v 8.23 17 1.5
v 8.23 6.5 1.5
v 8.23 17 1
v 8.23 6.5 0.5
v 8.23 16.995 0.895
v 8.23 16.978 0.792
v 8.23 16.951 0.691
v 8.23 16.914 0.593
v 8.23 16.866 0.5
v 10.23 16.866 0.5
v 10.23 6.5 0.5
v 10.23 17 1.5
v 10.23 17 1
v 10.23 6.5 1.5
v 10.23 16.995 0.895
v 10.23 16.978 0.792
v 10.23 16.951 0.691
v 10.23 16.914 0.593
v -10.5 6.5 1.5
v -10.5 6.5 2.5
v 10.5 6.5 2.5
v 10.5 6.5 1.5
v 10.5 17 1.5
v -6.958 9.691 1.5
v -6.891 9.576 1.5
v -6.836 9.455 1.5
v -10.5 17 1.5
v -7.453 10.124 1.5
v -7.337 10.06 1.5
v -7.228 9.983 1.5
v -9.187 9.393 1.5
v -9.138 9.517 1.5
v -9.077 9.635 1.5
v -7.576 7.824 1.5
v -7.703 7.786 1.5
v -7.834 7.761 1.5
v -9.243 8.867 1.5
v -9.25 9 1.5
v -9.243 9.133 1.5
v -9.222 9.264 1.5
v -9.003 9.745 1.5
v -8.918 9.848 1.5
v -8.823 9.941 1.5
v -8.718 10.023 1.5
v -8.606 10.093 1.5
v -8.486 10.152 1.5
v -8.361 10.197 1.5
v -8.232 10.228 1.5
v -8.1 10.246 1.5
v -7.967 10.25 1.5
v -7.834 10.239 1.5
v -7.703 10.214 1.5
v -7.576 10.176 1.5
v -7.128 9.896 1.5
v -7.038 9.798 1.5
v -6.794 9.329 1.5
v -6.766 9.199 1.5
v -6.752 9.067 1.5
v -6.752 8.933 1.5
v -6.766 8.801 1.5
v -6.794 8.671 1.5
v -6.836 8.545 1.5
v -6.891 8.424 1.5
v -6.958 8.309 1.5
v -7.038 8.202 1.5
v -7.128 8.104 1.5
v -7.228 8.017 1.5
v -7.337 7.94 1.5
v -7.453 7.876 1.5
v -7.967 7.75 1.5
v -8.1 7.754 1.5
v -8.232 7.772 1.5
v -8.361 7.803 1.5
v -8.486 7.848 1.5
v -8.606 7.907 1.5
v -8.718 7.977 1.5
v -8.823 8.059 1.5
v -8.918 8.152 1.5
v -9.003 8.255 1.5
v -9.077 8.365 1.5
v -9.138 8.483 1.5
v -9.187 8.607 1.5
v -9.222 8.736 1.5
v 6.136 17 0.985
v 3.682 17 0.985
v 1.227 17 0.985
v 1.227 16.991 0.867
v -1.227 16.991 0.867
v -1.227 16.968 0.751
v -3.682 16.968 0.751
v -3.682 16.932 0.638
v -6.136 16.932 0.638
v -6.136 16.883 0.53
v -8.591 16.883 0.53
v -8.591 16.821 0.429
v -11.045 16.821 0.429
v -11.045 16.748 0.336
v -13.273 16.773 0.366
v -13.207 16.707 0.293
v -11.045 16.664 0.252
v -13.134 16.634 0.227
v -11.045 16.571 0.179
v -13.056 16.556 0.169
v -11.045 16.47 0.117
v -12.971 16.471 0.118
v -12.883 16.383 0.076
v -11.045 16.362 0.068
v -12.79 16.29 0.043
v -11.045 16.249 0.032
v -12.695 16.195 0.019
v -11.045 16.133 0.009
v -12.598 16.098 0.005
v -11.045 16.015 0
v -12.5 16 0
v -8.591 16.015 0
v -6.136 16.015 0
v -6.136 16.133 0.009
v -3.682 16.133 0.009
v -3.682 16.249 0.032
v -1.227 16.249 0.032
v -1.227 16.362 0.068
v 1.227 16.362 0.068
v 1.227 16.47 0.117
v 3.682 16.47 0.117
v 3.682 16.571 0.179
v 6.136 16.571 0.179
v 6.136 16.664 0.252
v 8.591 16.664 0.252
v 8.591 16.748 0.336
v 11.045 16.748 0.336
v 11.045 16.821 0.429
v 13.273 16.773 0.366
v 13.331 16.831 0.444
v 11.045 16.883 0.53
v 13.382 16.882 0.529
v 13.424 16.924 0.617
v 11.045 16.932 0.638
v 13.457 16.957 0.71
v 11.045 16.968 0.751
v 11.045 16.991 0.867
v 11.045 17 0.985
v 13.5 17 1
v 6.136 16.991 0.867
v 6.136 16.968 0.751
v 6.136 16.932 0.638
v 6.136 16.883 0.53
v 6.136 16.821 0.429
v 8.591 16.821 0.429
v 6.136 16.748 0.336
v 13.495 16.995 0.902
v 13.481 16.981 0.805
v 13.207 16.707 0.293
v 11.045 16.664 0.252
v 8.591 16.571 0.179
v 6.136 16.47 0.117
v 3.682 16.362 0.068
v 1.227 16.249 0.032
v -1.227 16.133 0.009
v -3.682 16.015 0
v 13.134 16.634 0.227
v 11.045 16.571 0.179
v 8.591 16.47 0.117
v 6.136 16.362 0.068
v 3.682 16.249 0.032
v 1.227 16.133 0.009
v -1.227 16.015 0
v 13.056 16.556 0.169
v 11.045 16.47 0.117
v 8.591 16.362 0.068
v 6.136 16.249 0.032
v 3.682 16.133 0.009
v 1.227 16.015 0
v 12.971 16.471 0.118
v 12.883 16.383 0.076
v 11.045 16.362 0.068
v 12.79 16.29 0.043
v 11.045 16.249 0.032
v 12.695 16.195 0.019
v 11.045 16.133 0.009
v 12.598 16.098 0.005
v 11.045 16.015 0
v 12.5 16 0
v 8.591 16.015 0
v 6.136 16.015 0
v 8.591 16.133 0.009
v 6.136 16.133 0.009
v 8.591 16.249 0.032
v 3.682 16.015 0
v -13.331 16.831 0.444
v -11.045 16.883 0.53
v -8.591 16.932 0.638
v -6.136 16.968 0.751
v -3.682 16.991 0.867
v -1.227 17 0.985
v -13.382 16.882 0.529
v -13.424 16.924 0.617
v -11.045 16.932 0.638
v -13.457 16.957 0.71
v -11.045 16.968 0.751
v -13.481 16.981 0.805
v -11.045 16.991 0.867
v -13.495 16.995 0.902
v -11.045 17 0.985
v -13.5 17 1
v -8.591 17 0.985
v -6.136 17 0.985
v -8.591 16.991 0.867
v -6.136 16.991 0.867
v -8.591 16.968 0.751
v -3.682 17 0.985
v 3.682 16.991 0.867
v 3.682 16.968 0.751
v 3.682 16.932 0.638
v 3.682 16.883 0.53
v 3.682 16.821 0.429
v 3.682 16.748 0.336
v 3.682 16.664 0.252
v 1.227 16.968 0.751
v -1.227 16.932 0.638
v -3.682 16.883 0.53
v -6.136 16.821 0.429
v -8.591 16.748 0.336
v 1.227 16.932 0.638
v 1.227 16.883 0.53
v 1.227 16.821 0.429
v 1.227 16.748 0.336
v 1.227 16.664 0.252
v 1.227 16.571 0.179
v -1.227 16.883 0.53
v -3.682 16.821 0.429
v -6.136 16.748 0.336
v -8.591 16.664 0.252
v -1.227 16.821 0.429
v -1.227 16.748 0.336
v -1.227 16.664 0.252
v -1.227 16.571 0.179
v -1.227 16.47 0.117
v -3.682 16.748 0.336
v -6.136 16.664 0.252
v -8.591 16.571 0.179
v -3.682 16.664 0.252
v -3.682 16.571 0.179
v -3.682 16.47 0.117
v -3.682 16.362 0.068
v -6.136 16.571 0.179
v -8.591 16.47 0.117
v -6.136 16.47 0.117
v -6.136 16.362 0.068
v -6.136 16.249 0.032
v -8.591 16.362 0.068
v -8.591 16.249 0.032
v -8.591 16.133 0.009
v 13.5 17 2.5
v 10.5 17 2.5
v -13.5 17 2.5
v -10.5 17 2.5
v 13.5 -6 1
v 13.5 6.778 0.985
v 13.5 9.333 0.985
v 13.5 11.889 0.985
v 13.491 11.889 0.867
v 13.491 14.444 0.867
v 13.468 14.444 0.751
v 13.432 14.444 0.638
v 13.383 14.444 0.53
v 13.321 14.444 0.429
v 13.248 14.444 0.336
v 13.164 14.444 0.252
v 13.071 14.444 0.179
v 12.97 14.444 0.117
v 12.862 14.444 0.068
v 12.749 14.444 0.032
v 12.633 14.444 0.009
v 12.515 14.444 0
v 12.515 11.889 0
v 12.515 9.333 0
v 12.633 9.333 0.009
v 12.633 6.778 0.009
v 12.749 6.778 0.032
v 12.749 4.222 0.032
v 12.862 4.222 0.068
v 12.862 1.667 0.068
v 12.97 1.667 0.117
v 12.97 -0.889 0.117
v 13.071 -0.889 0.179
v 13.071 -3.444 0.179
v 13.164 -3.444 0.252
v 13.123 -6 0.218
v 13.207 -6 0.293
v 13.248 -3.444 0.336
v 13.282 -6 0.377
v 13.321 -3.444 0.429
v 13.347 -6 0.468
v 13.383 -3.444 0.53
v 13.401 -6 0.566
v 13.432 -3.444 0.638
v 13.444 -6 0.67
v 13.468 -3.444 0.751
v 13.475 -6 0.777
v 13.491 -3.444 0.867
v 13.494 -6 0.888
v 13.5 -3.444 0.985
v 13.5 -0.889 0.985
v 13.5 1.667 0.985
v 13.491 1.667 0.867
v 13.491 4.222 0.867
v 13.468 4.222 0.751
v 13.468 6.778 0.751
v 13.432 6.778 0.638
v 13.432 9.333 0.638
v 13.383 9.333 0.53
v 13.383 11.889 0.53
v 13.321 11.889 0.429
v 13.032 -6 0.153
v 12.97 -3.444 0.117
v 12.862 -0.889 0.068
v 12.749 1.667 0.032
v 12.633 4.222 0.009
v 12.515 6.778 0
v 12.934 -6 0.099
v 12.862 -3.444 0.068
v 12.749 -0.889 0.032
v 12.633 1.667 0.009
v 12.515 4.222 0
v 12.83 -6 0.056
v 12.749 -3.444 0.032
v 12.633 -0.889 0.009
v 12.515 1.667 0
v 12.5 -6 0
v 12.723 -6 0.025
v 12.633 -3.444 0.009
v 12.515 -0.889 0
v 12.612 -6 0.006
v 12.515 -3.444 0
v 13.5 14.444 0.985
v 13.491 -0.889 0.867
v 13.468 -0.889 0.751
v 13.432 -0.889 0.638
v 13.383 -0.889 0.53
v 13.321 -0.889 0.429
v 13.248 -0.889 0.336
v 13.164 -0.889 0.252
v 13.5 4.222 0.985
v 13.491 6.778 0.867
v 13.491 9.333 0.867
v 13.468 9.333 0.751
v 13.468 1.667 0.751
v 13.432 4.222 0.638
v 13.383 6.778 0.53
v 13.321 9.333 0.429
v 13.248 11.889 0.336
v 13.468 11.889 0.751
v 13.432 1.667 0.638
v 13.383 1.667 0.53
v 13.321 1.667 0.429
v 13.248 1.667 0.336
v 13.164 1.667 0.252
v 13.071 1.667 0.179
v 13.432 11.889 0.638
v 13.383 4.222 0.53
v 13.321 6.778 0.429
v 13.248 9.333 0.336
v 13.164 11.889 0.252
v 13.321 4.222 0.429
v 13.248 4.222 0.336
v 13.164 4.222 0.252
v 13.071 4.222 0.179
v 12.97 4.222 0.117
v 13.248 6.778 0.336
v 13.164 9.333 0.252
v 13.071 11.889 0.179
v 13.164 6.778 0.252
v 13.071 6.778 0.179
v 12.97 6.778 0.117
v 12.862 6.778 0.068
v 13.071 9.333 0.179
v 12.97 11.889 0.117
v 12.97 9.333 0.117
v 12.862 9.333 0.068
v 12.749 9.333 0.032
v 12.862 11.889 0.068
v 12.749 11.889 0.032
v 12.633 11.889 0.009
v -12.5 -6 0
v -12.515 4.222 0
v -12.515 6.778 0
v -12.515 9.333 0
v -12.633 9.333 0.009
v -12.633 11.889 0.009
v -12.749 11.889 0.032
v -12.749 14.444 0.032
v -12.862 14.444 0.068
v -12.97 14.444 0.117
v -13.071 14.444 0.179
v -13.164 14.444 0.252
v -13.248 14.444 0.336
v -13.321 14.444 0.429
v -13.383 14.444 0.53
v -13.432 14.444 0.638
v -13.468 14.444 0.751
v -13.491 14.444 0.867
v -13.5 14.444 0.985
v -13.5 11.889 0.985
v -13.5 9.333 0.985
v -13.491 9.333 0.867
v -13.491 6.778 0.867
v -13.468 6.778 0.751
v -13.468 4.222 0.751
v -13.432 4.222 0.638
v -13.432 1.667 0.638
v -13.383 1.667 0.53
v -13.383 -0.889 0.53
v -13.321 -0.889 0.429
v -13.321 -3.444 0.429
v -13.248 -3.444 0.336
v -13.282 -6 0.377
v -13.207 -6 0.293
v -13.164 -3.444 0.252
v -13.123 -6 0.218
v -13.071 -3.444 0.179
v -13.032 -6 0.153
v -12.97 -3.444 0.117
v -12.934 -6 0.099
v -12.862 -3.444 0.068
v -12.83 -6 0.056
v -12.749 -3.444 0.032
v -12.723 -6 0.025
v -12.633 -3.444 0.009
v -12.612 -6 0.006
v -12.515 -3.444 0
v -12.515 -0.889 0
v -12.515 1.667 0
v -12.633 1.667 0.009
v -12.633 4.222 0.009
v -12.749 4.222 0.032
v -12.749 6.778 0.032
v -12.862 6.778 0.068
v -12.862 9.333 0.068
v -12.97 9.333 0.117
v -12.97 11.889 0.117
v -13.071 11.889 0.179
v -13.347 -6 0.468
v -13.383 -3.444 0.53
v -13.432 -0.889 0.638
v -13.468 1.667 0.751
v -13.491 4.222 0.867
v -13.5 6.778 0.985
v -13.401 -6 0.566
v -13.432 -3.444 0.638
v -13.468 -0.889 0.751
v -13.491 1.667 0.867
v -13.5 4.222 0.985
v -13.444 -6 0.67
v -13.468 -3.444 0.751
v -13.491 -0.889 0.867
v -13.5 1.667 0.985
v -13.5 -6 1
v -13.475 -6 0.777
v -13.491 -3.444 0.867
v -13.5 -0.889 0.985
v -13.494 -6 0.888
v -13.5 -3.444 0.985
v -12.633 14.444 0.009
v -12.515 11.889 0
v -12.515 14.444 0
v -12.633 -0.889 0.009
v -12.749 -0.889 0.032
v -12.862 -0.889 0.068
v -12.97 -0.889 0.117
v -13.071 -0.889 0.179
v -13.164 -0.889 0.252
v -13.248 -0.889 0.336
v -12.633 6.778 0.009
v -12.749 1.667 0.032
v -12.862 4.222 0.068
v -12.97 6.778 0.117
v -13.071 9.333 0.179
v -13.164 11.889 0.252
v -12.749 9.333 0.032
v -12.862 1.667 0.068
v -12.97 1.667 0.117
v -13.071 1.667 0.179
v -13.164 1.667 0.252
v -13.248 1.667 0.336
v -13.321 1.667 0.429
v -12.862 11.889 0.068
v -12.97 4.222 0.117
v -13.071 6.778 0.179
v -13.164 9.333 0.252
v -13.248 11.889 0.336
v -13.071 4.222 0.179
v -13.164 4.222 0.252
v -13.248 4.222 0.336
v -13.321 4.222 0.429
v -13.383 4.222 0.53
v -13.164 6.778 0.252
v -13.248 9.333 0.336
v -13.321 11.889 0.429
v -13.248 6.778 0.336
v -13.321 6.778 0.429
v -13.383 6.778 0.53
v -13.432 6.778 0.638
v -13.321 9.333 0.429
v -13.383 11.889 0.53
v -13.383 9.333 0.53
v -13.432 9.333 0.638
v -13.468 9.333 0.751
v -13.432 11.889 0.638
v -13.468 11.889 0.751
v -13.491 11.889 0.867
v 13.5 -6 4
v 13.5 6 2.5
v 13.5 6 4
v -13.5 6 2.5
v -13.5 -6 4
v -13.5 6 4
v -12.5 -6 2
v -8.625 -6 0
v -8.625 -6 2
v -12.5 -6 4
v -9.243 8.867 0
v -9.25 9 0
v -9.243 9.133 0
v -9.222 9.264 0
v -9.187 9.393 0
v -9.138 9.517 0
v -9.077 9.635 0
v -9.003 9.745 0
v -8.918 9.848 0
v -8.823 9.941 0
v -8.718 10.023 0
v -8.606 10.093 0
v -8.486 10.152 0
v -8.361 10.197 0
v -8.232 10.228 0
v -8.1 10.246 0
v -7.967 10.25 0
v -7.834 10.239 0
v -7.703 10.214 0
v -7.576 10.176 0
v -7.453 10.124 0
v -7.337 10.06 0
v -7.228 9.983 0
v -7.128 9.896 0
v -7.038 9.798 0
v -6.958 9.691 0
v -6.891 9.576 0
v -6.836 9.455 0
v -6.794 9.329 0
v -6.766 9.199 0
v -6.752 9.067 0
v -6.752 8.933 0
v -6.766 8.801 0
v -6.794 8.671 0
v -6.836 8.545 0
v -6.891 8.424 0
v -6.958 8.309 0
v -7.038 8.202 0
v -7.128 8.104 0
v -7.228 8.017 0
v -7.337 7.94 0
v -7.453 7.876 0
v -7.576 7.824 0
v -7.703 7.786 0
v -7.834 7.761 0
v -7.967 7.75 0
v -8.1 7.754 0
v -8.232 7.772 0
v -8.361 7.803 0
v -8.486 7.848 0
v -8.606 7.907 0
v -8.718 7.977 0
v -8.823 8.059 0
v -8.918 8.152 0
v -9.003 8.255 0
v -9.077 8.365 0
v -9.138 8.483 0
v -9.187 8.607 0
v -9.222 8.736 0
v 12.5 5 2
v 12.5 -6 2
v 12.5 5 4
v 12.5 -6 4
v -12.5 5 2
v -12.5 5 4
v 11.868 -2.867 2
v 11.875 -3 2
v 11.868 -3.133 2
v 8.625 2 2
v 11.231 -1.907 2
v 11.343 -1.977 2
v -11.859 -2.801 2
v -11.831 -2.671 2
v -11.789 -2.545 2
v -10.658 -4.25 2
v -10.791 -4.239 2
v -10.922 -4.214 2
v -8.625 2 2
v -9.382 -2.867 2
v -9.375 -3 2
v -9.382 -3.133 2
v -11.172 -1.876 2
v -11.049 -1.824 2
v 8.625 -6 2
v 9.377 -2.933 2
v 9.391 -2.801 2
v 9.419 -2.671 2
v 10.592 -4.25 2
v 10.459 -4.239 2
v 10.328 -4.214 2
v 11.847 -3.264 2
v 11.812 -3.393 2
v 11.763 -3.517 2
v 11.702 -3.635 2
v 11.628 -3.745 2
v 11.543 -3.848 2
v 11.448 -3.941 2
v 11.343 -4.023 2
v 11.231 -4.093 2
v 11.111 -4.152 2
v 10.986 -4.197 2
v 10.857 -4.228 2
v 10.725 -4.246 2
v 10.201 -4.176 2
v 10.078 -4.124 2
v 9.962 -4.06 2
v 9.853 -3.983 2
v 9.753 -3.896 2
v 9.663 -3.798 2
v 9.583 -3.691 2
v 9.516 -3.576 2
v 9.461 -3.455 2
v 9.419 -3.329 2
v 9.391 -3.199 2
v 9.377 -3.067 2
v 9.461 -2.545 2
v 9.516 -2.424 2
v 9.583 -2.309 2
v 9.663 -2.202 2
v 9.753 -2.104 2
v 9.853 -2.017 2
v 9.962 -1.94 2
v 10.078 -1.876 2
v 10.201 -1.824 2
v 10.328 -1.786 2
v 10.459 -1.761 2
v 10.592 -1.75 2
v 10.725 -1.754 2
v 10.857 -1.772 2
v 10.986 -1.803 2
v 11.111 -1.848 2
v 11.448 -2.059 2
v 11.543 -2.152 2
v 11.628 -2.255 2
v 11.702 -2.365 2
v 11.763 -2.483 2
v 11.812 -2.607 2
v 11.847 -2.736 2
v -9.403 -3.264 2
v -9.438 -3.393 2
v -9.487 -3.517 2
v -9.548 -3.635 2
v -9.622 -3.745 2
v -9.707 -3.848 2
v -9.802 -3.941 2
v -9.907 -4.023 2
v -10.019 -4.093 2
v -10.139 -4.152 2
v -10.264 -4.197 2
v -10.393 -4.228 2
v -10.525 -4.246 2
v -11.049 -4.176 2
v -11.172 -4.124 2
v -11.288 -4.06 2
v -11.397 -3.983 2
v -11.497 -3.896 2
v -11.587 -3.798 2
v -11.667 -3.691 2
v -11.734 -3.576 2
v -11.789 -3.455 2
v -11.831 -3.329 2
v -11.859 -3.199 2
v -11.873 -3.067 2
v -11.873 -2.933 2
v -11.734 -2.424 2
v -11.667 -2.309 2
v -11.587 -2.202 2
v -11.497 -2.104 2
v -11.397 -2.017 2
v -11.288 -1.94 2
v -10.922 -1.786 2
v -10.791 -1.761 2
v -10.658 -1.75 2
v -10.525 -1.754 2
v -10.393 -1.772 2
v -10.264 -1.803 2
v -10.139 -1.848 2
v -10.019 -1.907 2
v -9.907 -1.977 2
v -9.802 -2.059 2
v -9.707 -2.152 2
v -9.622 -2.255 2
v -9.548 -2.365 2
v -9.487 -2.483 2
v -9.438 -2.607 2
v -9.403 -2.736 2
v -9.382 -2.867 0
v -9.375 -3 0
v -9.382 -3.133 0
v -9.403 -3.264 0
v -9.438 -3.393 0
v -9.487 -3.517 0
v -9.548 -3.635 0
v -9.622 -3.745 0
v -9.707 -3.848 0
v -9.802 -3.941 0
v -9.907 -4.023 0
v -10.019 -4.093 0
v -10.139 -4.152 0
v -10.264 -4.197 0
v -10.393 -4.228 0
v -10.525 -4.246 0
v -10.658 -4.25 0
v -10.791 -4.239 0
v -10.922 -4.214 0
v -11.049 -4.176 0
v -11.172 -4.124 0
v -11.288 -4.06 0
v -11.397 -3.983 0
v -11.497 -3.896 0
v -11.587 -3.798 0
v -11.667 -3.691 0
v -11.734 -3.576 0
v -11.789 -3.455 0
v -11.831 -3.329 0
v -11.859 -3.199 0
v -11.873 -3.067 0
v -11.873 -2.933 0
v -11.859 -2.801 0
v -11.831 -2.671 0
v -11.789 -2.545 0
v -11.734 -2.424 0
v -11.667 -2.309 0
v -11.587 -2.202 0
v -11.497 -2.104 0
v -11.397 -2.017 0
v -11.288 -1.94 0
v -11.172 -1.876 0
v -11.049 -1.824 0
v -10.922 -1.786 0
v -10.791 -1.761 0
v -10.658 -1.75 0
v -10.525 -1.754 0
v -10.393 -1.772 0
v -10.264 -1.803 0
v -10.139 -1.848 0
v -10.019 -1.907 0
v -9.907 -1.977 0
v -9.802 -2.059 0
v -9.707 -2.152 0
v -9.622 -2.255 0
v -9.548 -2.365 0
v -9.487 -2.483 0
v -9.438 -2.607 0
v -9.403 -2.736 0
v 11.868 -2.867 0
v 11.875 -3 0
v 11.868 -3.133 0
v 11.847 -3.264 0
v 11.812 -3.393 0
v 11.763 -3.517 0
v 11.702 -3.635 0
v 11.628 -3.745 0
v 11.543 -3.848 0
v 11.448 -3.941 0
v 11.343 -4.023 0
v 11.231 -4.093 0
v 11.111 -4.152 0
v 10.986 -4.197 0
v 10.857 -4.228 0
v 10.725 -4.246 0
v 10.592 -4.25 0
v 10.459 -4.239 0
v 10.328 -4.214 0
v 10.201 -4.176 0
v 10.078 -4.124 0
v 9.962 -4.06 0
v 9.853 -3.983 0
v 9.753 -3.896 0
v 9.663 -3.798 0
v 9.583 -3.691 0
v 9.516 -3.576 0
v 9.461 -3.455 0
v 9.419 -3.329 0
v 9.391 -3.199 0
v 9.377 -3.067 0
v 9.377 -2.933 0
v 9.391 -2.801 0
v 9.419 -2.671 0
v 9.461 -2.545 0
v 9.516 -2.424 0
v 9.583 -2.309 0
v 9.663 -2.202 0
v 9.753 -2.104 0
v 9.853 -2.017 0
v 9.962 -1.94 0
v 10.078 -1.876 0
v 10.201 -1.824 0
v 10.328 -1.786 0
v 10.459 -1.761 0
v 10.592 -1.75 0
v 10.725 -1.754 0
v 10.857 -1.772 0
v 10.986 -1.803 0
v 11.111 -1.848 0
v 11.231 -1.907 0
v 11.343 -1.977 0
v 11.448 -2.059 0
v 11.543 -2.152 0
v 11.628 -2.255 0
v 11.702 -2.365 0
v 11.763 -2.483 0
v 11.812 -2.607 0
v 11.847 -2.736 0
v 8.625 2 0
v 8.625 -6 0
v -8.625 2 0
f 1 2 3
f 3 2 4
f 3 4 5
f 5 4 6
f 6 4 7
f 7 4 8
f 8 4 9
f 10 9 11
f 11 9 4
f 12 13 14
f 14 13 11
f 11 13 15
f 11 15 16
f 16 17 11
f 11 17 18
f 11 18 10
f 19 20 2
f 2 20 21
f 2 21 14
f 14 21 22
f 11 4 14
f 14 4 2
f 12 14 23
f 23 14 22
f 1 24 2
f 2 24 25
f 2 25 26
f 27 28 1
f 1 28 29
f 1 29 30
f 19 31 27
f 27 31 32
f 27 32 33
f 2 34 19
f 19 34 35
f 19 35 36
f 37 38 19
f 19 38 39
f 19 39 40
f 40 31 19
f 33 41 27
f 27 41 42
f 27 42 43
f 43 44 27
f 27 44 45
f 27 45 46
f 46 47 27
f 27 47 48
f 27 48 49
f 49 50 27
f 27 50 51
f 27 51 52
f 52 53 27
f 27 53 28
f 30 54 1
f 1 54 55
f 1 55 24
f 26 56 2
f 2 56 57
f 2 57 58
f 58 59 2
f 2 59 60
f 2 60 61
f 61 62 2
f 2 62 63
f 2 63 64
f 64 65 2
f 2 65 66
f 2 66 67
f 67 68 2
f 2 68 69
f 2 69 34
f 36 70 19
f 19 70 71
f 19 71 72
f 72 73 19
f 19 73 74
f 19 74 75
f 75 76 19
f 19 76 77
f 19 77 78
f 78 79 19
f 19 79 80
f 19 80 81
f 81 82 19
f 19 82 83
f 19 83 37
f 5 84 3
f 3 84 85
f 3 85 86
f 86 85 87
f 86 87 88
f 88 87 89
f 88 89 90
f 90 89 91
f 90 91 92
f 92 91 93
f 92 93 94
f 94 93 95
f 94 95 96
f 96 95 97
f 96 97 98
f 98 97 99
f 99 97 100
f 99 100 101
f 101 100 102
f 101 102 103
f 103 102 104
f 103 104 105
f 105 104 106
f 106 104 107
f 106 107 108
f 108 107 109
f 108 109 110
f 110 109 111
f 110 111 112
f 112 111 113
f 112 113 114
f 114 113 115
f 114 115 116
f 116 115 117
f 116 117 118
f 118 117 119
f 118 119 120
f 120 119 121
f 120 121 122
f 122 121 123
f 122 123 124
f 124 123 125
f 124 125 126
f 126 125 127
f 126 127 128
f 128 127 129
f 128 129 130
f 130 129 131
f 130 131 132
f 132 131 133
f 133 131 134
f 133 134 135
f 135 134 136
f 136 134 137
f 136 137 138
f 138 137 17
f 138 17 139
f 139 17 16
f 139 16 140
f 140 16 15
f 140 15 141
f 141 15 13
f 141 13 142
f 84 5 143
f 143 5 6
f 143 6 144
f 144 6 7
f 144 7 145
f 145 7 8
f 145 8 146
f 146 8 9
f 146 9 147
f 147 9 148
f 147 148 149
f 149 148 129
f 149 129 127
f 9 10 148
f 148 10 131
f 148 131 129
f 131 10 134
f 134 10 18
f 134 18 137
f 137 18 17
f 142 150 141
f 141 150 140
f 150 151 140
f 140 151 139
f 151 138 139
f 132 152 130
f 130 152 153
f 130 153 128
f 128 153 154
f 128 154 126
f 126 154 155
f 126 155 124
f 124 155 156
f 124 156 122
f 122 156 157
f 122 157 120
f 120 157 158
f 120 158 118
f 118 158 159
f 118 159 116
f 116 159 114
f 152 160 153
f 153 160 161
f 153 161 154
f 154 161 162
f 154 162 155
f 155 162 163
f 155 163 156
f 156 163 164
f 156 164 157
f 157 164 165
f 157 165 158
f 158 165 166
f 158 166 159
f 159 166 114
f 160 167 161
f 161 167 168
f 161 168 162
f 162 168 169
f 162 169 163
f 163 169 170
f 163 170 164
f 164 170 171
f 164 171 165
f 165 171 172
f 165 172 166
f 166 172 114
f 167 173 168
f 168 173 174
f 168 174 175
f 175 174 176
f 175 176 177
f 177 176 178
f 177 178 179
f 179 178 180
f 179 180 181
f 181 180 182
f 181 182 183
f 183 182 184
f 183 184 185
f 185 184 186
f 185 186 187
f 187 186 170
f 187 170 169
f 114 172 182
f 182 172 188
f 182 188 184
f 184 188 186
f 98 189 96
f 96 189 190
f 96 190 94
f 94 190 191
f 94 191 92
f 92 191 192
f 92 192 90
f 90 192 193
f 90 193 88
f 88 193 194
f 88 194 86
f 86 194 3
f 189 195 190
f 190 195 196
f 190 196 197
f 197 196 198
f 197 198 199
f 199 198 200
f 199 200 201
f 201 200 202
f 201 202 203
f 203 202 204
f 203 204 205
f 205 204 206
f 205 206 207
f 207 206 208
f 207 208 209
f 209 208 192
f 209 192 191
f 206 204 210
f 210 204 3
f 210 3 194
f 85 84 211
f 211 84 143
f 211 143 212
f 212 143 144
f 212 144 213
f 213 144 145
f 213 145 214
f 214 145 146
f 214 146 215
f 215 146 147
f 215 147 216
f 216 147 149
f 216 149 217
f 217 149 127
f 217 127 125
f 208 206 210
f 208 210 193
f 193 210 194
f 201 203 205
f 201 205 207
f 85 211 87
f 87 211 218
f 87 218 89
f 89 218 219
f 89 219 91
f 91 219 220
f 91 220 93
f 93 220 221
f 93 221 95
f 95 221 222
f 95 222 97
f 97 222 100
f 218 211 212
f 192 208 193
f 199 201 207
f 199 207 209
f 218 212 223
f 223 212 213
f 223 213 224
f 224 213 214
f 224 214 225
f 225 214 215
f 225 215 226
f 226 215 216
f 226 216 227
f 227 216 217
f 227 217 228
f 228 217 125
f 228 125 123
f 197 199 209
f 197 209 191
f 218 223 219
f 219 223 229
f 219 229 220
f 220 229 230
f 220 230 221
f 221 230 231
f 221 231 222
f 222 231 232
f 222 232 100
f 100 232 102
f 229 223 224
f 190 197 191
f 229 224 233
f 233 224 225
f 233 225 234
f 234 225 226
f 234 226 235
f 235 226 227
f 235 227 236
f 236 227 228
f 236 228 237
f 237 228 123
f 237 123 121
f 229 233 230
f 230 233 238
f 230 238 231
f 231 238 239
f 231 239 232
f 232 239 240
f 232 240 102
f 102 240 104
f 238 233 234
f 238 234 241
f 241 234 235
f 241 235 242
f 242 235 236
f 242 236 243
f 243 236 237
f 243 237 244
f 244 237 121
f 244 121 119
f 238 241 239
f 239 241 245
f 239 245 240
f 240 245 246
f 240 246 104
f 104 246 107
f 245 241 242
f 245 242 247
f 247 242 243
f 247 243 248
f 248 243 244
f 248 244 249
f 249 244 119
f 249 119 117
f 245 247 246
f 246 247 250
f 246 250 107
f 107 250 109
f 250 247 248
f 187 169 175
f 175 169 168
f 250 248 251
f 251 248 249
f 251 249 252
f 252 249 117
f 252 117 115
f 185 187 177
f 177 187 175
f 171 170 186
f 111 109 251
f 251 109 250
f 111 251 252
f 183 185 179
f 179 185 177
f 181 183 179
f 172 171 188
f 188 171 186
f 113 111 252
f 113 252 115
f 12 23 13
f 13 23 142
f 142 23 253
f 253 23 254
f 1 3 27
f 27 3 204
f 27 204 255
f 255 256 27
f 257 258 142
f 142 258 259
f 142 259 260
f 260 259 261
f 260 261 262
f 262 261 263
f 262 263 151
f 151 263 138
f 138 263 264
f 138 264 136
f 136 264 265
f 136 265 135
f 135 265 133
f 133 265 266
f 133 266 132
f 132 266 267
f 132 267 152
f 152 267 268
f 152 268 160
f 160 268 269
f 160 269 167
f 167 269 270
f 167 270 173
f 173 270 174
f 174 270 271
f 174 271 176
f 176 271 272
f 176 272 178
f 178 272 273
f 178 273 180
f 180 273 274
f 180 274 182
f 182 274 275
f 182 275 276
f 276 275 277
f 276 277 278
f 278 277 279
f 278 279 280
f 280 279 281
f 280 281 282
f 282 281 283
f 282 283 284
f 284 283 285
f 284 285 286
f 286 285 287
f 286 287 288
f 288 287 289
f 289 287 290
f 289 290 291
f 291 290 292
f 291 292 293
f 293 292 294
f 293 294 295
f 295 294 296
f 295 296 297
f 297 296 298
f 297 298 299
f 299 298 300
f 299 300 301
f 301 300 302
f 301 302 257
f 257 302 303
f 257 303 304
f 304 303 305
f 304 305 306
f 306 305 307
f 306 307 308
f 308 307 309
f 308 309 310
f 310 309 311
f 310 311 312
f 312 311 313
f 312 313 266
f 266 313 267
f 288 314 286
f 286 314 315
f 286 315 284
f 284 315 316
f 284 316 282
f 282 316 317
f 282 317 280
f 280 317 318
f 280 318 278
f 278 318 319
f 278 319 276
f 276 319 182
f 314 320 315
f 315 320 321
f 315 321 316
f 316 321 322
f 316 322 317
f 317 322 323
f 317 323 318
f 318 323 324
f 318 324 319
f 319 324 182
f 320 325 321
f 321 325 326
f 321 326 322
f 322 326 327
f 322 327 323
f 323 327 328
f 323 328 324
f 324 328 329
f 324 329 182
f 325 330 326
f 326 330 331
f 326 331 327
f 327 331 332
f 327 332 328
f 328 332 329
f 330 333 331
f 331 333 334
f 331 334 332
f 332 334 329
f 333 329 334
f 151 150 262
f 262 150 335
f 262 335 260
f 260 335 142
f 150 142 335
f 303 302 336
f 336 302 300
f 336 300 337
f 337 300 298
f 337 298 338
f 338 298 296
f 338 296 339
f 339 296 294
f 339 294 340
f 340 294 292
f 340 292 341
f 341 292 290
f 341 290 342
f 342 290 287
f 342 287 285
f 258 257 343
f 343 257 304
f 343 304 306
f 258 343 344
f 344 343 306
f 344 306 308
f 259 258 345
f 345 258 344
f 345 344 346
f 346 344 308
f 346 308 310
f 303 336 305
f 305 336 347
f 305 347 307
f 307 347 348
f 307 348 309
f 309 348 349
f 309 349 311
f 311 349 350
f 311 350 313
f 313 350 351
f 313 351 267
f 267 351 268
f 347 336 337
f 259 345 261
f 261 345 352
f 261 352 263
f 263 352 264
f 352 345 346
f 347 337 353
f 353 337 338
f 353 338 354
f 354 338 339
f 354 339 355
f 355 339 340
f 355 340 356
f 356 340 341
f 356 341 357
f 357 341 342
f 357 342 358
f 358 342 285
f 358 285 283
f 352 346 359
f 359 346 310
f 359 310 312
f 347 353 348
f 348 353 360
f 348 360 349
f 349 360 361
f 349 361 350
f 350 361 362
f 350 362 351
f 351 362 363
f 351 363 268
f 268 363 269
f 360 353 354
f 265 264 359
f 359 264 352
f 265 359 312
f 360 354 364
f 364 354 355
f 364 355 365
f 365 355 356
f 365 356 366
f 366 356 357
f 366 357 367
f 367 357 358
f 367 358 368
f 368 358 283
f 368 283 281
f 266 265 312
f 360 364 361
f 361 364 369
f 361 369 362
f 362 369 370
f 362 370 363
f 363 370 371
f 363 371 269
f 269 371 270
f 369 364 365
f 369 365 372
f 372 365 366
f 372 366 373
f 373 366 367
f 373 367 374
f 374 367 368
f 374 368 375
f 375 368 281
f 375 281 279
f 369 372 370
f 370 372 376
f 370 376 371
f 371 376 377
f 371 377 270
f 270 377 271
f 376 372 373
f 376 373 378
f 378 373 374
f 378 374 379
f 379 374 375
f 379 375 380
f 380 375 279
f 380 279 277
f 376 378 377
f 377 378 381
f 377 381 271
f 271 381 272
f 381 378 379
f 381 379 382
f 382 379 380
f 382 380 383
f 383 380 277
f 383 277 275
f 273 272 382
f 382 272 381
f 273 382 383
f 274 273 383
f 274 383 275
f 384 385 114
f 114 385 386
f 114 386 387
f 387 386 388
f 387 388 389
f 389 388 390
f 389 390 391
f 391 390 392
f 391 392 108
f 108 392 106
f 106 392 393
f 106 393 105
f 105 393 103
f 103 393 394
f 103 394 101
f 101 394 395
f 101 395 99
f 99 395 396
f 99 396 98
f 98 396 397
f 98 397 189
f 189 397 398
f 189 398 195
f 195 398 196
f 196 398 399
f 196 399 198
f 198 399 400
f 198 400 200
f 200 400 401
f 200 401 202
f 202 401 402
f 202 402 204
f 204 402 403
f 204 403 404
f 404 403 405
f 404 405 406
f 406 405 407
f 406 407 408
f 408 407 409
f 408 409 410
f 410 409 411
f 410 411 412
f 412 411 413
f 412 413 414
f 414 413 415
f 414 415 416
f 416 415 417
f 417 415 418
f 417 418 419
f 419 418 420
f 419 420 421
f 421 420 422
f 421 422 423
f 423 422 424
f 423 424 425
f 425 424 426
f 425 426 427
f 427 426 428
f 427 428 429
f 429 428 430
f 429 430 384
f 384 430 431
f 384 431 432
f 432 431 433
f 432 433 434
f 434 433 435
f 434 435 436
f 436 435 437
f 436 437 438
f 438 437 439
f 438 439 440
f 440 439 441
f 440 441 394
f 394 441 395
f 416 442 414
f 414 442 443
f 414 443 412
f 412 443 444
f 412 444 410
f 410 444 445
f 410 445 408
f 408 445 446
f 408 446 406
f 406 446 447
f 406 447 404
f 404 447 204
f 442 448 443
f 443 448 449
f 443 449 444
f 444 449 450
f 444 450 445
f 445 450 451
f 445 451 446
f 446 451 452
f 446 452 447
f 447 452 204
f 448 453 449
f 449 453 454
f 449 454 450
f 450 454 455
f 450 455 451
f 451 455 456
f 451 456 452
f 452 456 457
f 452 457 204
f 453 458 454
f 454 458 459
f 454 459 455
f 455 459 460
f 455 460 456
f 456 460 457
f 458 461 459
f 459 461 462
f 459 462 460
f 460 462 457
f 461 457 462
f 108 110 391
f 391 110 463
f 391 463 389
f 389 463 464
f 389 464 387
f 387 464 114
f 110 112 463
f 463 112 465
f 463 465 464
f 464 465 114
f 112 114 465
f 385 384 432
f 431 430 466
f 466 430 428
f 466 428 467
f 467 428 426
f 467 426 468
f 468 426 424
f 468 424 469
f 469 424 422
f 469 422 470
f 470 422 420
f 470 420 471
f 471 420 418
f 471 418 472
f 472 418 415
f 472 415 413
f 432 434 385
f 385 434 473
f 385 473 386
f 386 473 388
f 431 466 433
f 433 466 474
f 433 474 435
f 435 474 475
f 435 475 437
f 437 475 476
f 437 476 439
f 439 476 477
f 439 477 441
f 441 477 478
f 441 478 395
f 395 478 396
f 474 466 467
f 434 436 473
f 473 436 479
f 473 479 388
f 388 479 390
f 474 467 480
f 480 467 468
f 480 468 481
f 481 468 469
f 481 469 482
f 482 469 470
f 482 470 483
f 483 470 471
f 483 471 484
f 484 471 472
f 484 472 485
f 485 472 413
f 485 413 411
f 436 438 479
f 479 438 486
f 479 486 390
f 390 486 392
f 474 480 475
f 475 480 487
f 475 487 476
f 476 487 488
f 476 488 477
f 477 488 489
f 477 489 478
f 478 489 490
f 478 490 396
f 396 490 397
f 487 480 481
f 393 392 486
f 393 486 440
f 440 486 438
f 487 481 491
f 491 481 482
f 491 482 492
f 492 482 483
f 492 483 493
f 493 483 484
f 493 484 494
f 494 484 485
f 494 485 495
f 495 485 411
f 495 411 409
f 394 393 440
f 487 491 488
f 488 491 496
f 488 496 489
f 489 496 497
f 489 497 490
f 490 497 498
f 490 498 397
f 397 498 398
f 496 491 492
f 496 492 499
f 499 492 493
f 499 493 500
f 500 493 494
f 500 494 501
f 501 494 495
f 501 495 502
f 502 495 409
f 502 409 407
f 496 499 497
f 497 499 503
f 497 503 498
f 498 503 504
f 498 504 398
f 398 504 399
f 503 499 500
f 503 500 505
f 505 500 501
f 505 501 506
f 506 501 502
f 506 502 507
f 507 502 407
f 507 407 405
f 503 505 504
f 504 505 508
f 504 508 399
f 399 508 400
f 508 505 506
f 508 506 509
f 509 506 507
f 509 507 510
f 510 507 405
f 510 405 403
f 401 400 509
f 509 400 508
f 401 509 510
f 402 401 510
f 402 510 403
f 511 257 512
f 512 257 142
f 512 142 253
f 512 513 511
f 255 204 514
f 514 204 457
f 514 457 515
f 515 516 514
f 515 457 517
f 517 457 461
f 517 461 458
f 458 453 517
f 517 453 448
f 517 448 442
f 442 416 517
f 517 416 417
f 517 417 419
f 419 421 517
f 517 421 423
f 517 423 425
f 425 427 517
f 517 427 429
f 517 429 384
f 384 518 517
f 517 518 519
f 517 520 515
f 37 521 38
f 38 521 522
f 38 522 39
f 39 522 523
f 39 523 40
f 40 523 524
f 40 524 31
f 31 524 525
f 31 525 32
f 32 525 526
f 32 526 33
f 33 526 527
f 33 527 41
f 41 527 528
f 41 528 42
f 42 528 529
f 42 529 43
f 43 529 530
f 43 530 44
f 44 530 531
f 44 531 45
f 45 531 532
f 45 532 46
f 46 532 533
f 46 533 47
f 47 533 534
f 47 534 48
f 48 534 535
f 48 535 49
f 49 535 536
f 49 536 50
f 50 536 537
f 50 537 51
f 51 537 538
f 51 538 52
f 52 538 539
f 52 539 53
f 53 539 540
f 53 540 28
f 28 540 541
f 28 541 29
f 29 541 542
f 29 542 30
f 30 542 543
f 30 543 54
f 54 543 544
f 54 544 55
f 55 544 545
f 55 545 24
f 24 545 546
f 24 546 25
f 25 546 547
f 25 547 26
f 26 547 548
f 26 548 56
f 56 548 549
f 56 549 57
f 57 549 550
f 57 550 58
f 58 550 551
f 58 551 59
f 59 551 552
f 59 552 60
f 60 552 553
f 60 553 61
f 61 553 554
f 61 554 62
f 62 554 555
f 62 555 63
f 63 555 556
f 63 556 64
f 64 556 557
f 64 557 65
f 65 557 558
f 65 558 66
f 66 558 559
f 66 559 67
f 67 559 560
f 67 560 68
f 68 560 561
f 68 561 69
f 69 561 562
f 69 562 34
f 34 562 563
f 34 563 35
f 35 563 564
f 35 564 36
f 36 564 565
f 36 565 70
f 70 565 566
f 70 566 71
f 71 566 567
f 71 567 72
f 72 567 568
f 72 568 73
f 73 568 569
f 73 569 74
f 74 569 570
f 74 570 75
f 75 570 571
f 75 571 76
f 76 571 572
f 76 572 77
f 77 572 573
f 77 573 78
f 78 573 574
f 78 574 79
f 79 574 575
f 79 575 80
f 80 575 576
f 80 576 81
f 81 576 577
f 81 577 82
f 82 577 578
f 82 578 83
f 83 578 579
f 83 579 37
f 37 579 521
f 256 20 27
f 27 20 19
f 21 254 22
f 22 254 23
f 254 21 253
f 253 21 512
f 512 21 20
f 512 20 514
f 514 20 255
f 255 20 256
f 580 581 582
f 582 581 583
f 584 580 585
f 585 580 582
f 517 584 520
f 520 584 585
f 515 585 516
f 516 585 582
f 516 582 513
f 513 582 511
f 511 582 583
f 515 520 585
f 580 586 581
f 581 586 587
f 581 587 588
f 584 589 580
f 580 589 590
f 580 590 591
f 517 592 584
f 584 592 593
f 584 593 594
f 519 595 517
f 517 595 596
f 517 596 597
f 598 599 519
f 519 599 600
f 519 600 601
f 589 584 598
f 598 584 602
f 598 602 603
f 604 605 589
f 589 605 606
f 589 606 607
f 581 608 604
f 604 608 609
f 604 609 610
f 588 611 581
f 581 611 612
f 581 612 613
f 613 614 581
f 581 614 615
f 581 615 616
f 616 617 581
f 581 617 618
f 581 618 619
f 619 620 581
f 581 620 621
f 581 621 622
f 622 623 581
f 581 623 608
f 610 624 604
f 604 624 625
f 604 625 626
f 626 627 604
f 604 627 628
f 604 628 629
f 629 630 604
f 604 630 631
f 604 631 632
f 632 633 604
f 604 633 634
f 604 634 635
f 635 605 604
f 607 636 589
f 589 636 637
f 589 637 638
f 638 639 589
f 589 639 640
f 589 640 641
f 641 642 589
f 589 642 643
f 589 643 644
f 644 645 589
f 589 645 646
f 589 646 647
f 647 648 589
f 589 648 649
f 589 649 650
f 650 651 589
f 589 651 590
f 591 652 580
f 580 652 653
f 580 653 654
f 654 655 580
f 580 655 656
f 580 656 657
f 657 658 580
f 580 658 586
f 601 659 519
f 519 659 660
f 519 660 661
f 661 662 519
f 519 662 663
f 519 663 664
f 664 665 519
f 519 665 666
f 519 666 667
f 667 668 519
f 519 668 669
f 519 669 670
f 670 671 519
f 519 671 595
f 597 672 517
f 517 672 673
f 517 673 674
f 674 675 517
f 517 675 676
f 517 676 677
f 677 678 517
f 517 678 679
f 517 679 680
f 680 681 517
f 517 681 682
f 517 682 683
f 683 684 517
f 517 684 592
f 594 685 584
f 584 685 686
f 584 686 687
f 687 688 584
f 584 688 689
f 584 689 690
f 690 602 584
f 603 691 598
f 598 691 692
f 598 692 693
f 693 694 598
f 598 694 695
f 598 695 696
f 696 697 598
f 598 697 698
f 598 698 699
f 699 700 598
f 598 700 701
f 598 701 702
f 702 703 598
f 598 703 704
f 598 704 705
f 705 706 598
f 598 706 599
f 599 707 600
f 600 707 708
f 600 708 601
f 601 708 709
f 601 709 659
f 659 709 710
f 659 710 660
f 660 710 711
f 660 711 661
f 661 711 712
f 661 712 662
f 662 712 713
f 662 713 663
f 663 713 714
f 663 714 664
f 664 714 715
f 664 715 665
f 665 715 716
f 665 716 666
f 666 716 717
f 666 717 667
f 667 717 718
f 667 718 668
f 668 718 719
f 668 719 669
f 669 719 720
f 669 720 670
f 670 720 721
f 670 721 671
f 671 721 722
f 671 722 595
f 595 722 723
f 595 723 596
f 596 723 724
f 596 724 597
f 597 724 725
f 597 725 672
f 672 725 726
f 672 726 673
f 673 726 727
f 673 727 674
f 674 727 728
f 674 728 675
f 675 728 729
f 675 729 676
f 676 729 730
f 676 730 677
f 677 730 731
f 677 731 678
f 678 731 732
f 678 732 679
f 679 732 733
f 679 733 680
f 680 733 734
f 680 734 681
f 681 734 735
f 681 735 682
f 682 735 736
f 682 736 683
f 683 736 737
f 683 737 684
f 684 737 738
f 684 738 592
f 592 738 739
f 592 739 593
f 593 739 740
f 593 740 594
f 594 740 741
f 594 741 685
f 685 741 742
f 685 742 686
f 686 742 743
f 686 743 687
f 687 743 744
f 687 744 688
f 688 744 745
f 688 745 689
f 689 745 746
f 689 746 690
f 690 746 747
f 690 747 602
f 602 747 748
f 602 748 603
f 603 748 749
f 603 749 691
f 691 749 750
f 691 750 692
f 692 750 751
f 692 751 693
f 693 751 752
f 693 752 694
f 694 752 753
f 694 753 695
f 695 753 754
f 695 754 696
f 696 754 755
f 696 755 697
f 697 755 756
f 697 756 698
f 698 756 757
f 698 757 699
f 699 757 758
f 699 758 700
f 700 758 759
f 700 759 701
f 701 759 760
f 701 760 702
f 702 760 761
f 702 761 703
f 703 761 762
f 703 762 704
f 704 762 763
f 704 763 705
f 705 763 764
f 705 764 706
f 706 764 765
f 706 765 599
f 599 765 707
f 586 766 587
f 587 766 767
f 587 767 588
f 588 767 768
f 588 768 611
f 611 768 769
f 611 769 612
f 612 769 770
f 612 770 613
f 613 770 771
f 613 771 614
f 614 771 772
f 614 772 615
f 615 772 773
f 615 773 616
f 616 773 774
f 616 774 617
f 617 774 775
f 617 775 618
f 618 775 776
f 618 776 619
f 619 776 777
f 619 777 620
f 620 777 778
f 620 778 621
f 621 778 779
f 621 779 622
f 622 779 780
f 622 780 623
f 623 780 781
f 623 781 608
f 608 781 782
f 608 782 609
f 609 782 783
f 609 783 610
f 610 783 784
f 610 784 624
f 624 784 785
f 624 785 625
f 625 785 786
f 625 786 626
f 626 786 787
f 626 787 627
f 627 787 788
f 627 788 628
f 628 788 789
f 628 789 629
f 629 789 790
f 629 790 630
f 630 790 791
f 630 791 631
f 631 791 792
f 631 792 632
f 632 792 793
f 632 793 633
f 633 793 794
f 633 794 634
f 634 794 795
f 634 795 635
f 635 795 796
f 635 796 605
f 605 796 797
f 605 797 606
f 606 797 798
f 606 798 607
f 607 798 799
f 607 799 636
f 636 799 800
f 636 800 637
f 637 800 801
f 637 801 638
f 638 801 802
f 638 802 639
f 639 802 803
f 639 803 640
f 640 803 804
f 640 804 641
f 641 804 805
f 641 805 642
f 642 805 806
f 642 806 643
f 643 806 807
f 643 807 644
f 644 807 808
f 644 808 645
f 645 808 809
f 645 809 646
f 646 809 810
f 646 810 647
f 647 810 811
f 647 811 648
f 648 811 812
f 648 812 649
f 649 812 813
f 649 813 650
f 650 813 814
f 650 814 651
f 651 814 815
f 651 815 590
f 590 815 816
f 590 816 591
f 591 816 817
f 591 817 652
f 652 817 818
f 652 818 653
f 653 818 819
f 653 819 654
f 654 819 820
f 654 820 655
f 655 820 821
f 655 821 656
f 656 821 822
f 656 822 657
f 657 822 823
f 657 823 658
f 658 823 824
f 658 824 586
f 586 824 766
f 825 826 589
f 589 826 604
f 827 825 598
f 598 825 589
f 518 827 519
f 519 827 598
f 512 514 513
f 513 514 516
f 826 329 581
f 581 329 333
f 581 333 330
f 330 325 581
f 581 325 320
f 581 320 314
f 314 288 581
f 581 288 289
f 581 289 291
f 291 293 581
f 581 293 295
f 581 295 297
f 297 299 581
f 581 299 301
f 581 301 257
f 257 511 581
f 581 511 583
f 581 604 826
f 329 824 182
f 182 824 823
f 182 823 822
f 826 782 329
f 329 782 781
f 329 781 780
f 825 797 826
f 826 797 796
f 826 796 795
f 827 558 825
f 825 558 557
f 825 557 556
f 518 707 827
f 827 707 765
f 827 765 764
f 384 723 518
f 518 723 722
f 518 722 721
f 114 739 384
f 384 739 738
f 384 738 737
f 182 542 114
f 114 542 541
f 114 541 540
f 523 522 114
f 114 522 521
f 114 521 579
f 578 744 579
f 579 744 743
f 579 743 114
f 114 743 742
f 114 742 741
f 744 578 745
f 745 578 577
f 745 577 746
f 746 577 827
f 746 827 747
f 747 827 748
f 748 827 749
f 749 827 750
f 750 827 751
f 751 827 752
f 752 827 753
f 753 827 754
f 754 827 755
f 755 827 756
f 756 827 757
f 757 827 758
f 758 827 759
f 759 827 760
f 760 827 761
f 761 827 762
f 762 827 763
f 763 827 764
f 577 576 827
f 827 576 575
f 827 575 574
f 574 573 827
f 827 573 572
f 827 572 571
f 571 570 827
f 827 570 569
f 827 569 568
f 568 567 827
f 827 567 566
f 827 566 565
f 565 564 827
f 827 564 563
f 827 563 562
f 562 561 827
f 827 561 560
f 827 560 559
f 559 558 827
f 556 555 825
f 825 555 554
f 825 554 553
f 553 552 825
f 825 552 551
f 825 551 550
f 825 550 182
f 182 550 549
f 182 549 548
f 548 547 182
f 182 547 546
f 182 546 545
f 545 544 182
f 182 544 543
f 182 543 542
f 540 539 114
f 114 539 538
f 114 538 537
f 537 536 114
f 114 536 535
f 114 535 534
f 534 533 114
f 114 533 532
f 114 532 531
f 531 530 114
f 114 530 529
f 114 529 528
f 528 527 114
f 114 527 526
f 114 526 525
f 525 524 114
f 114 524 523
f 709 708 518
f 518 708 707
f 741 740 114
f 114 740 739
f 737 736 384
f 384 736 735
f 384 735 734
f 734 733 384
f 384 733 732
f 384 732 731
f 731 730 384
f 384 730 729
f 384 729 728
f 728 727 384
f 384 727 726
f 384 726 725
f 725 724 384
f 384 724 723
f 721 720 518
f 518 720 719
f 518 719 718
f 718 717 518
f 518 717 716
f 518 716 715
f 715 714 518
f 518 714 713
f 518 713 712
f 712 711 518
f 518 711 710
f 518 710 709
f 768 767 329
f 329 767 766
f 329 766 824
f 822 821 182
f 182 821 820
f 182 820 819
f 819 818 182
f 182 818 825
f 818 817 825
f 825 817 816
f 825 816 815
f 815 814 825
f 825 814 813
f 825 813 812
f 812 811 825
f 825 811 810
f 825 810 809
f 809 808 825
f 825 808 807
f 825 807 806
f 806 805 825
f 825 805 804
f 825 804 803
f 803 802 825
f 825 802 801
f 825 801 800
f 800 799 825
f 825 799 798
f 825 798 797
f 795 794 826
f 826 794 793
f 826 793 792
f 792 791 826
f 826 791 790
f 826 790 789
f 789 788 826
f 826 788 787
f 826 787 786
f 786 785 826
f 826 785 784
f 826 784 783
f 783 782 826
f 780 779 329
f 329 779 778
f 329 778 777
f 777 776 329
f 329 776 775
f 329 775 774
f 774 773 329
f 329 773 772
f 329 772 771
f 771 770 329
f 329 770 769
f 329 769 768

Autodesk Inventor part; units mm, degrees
ref_plane "YZ Plane" through (0, 0, 0) normal (1, 0, 0) x (0, 1, 0)
ref_plane "XZ Plane" through (0, 0, 0) normal (0, 1, 0) x (-1, 0, 0)
ref_plane "XY Plane" through (0, 0, 0) normal (0, 0, 1) x (1, 0, 0)
sketch "Sketch1" plane through (0, 0, 0) normal (0, 0, 1) x (1, 0, 0)
  line L0 (-13.5, 6) -> (13.5, 6)
  line L1 (13.5, 6) -> (13.5, -6)
  line L2 (13.5, -6) -> (-13.5, -6)
  line L3 (-13.5, -6) -> (-13.5, 6)
  line L4 (-8.625, -6) -> (-8.625, 2)
  line L5 (-8.625, 2) -> (8.625, 2)
  line L6 (8.625, 2) -> (8.625, -6)
  line L7 (0, 19.1515) -> (0, -21.0963) construction
  line L8 (-12.5, -6) -> (-12.5, 5)
  line L9 (-12.5, 5) -> (12.5, 5)
  line L10 (12.5, 5) -> (12.5, -6)
  circle A0 centre (10.625, -3) radius 1.25
  circle A1 centre (-10.625, -3) radius 1.25
  line L11 (10.625, -5.3094) -> (8.625, -4.1547)
  line L12 (8.625, -4.1547) -> (8.625, -1.8453)
  line L13 (8.625, -1.8453) -> (10.625, -0.6906)
  line L14 (10.625, -0.6906) -> (12.625, -1.8453)
  line L15 (12.625, -1.8453) -> (12.625, -4.1547)
  line L16 (12.625, -4.1547) -> (10.625, -5.3094)
  line L17 (-10.625, -5.3094) -> (-12.625, -4.1547)
  line L18 (-12.625, -4.1547) -> (-12.625, -1.8453)
  line L19 (-12.625, -1.8453) -> (-10.625, -0.6906)
  line L20 (-10.625, -0.6906) -> (-8.625, -1.8453)
  line L21 (-8.625, -1.8453) -> (-8.625, -4.1547)
  line L22 (-8.625, -4.1547) -> (-10.625, -5.3094)
  line L23 (13.5, 6) -> (13.5, 17)
  line L24 (13.5, 17) -> (-13.5, 17)
  line L25 (-13.5, 17) -> (-13.5, 6)
  point P0 (0, 0)
  point P1 (-13.5, 0)
  point P2 (0, 6)
  point P3 (0, 16)
  dimension "d2" = 17.25
  dimension "d3" = 1
  dimension "d4" = 1
  dimension "d5" = 3
  dimension "d10" = 2.5
  dimension "d11" = 21.25
  dimension "d12" = 8
  dimension "d13" = 2
  dimension "d16" = 11
  dimension "d17" = 25
  dimension "d19" = 15
extrude "body" add sketch "Sketch1" along normal blind 2 contours L0 L1 L2 L10 L16 L15 L14 L9 L8 L19 L18 L17 L3 | L8 L17 L22 L4 L2 | L2 L6 L11 L16 L10 | L17 L18 L19 L8 | L8 L19 L20 L4 L22 L17 | L16 L11 L6 L13 L14 L10 | L10 L14 L15 L16 | L8 L9 L10 L14 L13 L6 L5 L4 L20 L19
extrude "borders" add sketch "Sketch1" along normal blind 4 contours L0 L1 L2 L10 L16 L15 L14 L9 L8 L19 L18 L17 L3 | L17 L18 L19 L8 | L10 L14 L15 L16
extrude "nut_recesses" [suppressed]
extrude "jut out for imu" add sketch "Sketch1" along normal blind 2.5 contours L25 L24 L23 L0
sketch "Sketch2" plane through (0, 0, 2.5) normal (0, 0, 1) x (1, 0, 0)
  line L0 (-10.5, 20) -> (10.5, 20)
  line L1 (10.5, 20) -> (10.5, 6.5)
  line L2 (10.5, 6.5) -> (-10.5, 6.5)
  line L3 (-10.5, 6.5) -> (-10.5, 20)
  circle A0 centre (-8, 9) radius 1.25
  line L4 (13.5, 6) -> (-13.5, 6) projected
  line L5 (10.23, 6.5) -> (10.23, 20)
  line L6 (8.23, 20) -> (8.23, 6.5)
  line L7 (8.23, 13.25) -> (10.23, 13.25) construction
  point P0 (0, 0)
  point P1 (0, 20)
  point P2 (9.23, 13.25)
  dimension "d32" = 21
  dimension "d33" = 13.5
  dimension "d34" = 2.5
  dimension "d35" = 2.5
  dimension "d36" = 2.5
  dimension "d44" = 0.5
  dimension "d45" = 2
  dimension "d46" = 1.27
extrude "recess for imu" cut sketch "Sketch2" along normal blind 10 and the other way blind 1 contours L0 L6 L2 L3 | L0 L5 L2 L6 | L0 L1 L2 L5 | A0
extrude "hole for imu" cut sketch "Sketch2" against normal blind 10 contours A0
fillet "Fillet2" radius 1 3 edges at (-13.5, 5.5, 0) (0, 17, 0) (13.5, 5.5, 0)
extrude "Extrusion9" cut sketch "Sketch2" against normal blind 2 contours L0 L5 L2 L6
equation "\"d4\" = d3"
properties part number "imu_mount"
